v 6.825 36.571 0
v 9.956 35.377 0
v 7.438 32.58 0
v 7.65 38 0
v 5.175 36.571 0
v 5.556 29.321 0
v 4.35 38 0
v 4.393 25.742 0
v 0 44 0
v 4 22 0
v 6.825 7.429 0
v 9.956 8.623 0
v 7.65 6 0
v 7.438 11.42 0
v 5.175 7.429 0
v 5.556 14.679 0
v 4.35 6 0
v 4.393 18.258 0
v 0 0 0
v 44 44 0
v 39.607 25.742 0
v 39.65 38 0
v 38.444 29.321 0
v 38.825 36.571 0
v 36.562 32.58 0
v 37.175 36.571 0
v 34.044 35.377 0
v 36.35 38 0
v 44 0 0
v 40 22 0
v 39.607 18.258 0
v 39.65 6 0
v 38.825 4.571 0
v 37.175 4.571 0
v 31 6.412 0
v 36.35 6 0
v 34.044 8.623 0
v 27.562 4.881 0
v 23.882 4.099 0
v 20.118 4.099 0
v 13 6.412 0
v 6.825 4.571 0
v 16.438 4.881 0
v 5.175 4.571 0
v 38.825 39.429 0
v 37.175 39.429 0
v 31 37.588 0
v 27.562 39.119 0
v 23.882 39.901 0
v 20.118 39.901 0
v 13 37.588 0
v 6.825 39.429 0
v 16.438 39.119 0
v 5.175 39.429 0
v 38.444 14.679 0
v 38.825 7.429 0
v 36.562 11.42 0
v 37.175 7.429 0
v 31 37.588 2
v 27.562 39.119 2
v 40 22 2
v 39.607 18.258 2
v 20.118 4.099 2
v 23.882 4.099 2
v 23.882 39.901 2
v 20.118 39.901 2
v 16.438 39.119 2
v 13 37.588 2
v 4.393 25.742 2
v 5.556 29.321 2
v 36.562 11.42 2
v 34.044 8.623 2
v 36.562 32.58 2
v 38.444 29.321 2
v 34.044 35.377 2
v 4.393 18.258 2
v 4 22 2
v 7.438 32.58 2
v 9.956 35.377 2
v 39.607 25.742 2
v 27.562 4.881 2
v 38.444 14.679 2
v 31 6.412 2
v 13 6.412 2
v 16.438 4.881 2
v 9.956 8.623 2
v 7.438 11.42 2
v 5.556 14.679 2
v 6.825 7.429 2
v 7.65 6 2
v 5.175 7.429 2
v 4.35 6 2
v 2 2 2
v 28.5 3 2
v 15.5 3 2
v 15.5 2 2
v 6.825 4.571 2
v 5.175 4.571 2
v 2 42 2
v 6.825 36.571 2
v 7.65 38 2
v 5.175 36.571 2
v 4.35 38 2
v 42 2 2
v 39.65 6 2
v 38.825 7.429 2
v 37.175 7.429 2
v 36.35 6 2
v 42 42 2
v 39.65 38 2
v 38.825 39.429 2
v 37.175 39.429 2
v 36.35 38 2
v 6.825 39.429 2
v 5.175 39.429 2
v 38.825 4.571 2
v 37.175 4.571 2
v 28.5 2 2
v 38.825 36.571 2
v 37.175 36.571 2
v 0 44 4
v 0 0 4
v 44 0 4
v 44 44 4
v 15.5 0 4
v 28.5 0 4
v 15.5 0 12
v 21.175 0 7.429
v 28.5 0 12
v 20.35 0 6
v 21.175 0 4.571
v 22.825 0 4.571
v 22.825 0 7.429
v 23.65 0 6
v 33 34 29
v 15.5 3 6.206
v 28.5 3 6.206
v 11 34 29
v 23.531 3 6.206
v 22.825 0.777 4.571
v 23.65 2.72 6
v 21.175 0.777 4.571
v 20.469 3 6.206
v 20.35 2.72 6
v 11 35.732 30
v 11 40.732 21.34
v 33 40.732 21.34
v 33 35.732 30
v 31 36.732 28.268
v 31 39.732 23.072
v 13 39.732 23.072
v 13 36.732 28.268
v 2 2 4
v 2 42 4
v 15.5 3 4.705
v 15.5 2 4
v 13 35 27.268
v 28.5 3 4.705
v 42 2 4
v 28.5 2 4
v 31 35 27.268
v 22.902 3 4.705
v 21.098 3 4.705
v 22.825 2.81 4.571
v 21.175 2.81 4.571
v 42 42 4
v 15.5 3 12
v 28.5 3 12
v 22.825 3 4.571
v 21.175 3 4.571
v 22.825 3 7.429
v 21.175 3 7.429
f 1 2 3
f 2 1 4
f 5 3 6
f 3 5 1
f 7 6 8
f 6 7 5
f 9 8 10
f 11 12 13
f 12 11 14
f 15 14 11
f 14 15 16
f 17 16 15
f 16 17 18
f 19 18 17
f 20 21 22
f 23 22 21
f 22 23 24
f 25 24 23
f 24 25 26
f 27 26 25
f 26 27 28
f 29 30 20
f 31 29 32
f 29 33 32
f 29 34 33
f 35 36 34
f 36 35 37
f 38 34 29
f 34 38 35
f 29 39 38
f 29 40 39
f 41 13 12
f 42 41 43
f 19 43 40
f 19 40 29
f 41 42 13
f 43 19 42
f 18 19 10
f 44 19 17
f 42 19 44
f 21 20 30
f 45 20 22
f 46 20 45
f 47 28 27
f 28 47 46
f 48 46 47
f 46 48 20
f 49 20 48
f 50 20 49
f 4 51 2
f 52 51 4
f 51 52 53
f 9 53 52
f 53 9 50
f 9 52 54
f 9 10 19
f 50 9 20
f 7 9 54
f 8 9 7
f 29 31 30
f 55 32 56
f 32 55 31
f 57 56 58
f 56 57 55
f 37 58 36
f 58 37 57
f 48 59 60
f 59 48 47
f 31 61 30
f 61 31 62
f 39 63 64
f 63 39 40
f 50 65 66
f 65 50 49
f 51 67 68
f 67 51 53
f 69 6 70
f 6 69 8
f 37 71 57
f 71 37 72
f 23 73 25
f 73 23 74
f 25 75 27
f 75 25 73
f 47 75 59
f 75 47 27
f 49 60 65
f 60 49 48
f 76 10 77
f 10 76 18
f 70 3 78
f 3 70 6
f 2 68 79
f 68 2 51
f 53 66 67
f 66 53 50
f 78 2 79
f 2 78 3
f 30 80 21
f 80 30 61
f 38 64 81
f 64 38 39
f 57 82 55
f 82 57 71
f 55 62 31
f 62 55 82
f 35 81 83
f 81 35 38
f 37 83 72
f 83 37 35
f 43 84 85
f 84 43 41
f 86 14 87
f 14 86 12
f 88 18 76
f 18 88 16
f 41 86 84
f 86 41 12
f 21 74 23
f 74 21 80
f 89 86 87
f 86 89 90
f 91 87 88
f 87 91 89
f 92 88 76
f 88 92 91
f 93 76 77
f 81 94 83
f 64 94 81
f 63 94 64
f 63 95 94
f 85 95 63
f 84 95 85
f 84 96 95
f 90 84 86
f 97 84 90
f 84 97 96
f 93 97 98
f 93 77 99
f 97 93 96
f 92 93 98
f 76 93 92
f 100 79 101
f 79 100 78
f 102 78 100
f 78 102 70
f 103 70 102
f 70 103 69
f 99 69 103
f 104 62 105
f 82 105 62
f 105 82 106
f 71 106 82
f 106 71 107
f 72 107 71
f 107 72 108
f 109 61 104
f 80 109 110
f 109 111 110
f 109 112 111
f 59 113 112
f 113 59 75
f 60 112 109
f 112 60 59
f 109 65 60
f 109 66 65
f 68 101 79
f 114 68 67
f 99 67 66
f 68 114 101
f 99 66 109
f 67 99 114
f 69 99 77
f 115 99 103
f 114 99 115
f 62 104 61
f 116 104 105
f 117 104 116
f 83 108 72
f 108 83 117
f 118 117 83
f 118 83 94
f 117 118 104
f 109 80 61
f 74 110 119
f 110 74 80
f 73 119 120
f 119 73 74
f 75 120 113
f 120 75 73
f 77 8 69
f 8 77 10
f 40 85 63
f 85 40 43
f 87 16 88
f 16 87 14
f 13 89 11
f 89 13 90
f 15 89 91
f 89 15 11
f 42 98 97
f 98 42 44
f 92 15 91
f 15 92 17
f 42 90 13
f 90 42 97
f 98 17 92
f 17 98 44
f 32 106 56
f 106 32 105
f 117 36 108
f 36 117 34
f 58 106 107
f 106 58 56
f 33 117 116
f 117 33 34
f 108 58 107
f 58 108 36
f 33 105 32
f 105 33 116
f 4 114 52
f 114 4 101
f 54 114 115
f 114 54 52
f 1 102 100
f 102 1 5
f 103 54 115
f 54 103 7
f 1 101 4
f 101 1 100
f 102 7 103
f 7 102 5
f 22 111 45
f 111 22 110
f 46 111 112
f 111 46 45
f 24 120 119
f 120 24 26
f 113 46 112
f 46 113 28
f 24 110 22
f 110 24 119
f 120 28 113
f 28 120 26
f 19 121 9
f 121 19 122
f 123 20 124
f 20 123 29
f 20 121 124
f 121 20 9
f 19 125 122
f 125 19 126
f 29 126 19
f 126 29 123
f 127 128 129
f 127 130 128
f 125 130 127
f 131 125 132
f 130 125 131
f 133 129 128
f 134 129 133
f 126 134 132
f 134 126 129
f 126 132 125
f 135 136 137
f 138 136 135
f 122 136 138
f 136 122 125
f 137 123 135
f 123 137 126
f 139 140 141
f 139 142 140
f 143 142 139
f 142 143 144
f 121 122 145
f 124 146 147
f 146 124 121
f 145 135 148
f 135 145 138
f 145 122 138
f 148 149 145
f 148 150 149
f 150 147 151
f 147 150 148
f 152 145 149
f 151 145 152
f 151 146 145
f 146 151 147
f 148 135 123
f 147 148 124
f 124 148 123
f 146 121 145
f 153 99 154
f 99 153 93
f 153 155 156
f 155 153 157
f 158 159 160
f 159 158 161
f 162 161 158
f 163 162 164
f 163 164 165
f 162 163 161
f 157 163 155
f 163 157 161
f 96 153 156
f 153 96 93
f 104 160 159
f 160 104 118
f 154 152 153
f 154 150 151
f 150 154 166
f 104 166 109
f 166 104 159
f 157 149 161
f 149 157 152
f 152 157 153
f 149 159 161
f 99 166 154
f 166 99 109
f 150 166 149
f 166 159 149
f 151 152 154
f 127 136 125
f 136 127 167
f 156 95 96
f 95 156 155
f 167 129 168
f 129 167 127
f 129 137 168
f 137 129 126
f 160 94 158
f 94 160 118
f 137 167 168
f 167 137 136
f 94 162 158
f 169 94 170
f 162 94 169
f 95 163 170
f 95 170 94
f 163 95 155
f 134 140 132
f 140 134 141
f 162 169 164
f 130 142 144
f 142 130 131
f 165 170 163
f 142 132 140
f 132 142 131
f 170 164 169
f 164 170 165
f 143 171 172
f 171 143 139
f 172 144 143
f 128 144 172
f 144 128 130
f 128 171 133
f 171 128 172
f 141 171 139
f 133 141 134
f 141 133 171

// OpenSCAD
//bracket
fan_plate_w = 44;
fan_plate_d = 44;
shell = 2;
fan = 40;

bracket_w = 13;
bracket_h = 10;
bracket_t = 3;

//screw
m3=3.3;
m3_offset= 6;

//main plate
difference(){
    cube([fan_plate_w, fan_plate_d, shell]);
    translate([0,fan_plate_d-fan_plate_w,0]){
        translate([fan_plate_w/2, fan_plate_w/2,0]){
            cylinder(h=shell, r=36/2);
        }
        translate([m3_offset, m3_offset,0]){
            cylinder(h=shell, r=m3/2);
        }
        translate([fan_plate_w-m3_offset, m3_offset,0]){
            cylinder(h=shell, r=m3/2);
        }
        translate([m3_offset, fan_plate_w-m3_offset,0]){
            cylinder(h=shell, r=m3/2);
        }
        translate([fan_plate_w-m3_offset, fan_plate_w-m3_offset,0]){
            cylinder(h=shell, r=m3/2);
        }
    }
}
difference(){
    translate([fan_plate_w/2-bracket_w/2,0,shell]){
        cube([bracket_w,bracket_t,bracket_h]);
    }
    translate([fan_plate_w/2,0,6]){
        rotate([-90,0,0]){
            cylinder(h=bracket_t, r=m3/2);
        }
    }
}

difference(){
    hull(){
        translate([0,0,shell]){
            cube([fan_plate_w, fan_plate_d, shell]);
        }
        
        translate([fan_plate_w/4,44-10,29]){rotate([-60,0,0]){
            cube([fan_plate_w/2, 10, shell]);
        }}
    }
    hull(){
        translate([shell,shell,shell]){
            cube([fan_plate_w-shell*2, fan_plate_d-shell*2, shell]);
        }
         
        translate([fan_plate_w/4,44-10,29]){rotate([-60,0,0]){
                translate([shell,shell,0]){
                    cube([fan_plate_w/2-shell*2, 10-shell*2, shell]);
                }
        }}
   }
}
